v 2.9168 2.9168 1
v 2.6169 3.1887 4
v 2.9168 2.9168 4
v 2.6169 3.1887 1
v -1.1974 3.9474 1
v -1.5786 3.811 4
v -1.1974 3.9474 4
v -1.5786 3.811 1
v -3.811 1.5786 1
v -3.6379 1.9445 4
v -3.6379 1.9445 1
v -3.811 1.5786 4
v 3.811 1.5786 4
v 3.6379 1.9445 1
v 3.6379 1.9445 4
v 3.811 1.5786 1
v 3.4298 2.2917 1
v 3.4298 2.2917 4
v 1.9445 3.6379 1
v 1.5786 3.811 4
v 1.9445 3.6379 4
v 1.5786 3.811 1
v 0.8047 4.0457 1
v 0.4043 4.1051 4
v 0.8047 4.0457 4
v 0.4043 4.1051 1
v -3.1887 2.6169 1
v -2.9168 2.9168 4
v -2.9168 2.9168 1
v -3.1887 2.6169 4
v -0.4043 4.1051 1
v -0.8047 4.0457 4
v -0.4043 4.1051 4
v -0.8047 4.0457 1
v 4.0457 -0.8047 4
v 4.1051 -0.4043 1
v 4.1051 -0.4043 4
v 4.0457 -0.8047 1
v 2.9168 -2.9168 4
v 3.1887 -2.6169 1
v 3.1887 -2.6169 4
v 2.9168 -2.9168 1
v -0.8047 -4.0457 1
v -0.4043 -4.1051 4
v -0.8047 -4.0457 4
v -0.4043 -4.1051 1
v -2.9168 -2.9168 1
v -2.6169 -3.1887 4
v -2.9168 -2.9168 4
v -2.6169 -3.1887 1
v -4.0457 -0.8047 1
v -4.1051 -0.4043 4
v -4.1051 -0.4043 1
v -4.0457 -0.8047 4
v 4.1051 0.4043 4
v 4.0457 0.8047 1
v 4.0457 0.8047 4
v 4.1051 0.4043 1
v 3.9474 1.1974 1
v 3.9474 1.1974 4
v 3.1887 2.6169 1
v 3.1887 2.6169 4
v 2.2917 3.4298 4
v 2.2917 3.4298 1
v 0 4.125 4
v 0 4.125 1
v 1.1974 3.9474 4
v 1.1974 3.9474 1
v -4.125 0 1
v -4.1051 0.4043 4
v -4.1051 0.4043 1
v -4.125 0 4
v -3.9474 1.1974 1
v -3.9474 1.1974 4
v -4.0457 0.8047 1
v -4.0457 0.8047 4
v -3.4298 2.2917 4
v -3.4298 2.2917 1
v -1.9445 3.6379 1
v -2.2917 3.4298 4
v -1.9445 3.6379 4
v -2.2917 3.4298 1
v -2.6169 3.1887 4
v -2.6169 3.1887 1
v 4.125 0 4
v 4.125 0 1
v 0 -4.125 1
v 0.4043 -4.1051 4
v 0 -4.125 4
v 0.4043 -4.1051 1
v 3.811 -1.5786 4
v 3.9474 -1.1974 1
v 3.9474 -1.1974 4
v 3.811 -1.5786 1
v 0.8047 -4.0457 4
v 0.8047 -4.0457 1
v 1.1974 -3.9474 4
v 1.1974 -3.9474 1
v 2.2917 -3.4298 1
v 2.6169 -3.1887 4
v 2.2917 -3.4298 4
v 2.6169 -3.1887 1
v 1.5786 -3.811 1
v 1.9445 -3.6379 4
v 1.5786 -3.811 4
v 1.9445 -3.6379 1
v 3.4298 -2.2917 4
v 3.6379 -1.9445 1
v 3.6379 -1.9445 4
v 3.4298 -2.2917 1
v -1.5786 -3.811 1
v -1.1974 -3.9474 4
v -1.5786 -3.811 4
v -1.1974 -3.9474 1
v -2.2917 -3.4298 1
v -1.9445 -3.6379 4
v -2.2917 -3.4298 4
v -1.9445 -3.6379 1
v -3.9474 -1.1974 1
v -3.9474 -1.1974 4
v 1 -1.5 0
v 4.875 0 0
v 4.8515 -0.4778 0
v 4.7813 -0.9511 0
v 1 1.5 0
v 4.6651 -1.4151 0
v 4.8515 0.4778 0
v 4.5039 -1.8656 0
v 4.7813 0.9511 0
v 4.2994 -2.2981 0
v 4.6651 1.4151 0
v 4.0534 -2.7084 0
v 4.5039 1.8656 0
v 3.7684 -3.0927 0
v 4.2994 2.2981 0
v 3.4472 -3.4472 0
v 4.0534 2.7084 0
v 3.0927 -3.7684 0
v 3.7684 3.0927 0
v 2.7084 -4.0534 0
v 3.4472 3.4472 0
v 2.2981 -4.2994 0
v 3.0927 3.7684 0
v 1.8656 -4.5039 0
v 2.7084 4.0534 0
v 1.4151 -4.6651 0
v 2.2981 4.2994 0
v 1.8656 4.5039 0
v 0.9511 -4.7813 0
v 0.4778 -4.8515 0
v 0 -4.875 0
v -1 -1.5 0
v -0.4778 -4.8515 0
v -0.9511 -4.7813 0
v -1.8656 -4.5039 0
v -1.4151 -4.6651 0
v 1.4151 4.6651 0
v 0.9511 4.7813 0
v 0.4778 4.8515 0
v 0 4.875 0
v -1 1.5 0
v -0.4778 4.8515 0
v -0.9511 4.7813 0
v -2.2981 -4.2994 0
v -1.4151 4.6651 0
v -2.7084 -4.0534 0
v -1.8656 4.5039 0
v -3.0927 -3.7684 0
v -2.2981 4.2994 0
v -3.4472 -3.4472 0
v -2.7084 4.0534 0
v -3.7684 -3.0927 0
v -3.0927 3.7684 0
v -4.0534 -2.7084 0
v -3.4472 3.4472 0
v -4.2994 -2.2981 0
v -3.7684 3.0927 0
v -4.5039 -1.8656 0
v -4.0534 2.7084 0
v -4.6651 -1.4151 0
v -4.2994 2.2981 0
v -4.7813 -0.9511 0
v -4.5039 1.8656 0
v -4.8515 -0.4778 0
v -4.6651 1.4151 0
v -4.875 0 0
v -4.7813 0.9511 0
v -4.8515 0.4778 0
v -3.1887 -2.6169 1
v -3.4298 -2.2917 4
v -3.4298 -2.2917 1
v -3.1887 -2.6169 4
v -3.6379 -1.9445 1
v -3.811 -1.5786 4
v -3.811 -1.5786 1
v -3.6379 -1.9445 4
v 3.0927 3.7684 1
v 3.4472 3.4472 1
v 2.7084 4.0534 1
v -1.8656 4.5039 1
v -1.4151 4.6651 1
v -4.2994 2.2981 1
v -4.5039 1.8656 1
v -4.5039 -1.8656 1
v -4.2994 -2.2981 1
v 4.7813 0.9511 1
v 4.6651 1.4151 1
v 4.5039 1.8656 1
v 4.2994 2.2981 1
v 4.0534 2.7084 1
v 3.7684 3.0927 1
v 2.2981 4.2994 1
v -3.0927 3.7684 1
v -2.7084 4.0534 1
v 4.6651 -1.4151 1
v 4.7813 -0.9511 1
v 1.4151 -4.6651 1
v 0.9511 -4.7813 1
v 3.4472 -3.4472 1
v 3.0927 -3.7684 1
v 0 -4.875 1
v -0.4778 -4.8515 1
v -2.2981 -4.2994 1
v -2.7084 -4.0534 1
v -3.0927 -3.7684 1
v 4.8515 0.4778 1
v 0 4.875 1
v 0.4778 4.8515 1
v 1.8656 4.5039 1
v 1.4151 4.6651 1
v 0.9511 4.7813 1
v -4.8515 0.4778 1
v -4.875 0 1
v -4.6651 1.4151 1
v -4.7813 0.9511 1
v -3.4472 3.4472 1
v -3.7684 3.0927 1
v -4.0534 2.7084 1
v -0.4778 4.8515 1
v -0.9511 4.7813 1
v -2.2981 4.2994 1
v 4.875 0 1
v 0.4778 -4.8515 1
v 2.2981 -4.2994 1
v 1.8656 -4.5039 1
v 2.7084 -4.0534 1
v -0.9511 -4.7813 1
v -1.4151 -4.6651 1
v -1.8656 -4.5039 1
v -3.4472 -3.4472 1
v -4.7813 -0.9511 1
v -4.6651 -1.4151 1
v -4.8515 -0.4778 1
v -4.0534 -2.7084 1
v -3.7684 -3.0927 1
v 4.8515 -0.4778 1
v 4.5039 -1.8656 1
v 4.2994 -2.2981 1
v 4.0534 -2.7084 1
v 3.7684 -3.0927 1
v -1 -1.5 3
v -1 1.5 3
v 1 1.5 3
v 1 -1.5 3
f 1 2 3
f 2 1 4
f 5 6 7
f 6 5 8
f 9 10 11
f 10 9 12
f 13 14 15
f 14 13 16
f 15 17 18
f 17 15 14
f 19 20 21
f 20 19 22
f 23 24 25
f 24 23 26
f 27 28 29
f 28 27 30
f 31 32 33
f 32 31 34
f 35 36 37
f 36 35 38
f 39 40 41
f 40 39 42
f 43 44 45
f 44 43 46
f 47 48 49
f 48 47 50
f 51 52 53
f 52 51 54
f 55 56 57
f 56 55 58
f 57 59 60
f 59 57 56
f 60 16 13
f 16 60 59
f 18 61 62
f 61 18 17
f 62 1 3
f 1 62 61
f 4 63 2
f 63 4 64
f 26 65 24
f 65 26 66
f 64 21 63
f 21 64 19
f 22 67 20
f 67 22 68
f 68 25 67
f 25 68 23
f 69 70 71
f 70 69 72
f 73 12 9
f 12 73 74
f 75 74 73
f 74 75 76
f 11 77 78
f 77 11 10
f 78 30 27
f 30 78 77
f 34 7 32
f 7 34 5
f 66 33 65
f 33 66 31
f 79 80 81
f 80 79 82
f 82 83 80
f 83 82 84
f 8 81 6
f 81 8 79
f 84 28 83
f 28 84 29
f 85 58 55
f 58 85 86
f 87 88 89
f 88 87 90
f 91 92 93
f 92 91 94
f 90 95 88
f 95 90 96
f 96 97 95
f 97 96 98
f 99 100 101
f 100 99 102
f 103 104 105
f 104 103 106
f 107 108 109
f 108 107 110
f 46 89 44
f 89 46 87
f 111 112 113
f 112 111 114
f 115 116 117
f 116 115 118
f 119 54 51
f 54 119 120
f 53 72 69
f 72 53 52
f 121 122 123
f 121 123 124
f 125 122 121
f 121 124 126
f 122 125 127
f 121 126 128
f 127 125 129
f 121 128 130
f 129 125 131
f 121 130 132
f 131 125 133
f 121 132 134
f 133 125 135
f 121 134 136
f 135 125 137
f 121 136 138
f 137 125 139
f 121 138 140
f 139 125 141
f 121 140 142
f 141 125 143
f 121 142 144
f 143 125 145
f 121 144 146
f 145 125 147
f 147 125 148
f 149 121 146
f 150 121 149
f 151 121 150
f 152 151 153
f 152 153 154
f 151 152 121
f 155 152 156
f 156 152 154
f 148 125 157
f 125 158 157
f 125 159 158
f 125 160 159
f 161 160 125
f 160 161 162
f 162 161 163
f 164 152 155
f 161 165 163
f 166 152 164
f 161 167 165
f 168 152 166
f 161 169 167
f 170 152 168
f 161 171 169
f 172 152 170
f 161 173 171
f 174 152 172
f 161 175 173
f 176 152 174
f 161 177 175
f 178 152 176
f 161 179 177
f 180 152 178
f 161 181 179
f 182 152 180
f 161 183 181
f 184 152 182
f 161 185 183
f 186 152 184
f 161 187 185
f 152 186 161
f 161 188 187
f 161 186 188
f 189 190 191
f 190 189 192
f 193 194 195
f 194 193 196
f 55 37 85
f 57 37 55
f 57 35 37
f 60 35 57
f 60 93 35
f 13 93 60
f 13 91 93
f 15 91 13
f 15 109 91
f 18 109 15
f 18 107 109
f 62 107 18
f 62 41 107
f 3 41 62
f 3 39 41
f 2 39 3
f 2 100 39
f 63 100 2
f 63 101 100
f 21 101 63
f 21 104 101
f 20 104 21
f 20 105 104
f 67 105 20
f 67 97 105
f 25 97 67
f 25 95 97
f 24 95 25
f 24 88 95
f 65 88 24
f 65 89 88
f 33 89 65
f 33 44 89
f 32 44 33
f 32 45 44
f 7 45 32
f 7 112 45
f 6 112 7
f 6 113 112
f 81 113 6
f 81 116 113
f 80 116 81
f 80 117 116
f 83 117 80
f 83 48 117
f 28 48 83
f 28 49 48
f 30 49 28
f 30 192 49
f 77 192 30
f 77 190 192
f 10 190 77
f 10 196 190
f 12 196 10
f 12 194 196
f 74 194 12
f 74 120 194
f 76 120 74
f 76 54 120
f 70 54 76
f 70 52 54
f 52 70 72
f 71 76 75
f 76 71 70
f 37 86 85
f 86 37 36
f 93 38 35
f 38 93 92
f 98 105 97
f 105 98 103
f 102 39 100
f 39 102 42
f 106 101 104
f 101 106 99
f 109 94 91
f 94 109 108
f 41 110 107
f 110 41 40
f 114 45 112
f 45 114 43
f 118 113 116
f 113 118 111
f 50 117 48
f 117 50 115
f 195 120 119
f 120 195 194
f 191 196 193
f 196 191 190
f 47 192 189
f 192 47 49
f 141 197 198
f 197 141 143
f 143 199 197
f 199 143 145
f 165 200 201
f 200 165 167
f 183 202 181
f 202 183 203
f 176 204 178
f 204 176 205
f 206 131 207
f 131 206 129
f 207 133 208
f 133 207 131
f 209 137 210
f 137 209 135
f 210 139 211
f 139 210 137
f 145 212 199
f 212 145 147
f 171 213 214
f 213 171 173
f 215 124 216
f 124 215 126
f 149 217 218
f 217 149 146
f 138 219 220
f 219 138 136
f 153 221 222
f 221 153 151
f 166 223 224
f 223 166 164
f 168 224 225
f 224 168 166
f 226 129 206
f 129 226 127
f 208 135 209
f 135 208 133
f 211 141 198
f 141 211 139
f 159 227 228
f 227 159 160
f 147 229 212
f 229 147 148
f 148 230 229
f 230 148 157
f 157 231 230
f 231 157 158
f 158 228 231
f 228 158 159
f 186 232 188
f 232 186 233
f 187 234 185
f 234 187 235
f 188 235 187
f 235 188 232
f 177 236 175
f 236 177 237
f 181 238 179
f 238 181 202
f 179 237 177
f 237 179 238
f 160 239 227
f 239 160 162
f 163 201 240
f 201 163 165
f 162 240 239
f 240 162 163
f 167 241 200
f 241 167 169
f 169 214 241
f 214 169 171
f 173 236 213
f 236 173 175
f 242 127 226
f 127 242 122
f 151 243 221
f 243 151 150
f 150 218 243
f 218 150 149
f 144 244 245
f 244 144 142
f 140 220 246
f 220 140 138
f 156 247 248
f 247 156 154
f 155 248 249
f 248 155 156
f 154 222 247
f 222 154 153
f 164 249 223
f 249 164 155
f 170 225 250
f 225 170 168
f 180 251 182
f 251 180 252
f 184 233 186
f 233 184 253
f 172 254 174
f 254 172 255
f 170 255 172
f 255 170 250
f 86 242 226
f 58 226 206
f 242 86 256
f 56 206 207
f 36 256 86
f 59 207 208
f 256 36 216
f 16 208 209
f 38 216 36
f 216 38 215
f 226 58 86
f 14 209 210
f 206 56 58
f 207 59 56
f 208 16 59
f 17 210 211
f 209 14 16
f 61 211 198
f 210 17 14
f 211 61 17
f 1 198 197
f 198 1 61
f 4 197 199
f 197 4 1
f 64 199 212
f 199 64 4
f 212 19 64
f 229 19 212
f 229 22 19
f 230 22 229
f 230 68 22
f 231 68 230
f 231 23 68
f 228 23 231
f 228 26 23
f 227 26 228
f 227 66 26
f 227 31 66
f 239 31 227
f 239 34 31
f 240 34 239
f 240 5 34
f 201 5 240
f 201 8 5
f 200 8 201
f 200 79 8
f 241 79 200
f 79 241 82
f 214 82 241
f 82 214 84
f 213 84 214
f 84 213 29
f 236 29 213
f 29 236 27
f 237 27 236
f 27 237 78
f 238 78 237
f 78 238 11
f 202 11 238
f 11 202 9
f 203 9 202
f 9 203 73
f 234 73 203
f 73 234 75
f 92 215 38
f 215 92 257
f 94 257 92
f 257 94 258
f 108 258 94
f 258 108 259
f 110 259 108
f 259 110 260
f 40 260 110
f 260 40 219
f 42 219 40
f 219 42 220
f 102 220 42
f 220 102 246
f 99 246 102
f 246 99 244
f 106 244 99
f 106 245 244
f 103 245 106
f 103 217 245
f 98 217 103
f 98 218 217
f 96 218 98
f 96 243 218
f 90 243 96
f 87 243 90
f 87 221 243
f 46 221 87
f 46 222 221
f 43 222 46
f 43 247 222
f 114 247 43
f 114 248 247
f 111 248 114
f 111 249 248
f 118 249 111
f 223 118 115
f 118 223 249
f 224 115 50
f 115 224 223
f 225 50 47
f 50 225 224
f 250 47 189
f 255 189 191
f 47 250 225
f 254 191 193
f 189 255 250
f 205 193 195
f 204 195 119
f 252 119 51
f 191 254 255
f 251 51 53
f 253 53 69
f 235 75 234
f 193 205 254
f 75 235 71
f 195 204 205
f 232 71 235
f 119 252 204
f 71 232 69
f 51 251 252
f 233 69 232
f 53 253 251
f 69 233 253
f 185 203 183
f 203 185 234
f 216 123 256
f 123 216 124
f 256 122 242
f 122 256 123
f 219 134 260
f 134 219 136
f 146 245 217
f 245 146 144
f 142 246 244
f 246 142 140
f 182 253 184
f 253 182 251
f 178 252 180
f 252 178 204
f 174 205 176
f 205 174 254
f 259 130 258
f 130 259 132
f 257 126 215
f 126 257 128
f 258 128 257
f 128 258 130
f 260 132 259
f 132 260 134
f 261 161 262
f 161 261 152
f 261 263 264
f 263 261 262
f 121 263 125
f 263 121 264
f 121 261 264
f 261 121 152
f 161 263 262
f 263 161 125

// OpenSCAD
postSideShort = 2;
postSideLong = 3;
postDepth = 3;

buttonLid = 1;
buttonDiameter = 16.5/2;
buttonBrimHeight = 1;
buttonBrimWidth = 1.5;

$fn=64;

color("LightGray") difference() {
    union() {
        cylinder(d = buttonDiameter, h = buttonLid + postDepth);
        cylinder(d = buttonDiameter + buttonBrimWidth, h = buttonBrimHeight);
    }
    translate([-postSideShort/2, -postSideLong/2, -0.1])
        cube([postSideShort, postSideLong, postDepth + 0.1]);
}
